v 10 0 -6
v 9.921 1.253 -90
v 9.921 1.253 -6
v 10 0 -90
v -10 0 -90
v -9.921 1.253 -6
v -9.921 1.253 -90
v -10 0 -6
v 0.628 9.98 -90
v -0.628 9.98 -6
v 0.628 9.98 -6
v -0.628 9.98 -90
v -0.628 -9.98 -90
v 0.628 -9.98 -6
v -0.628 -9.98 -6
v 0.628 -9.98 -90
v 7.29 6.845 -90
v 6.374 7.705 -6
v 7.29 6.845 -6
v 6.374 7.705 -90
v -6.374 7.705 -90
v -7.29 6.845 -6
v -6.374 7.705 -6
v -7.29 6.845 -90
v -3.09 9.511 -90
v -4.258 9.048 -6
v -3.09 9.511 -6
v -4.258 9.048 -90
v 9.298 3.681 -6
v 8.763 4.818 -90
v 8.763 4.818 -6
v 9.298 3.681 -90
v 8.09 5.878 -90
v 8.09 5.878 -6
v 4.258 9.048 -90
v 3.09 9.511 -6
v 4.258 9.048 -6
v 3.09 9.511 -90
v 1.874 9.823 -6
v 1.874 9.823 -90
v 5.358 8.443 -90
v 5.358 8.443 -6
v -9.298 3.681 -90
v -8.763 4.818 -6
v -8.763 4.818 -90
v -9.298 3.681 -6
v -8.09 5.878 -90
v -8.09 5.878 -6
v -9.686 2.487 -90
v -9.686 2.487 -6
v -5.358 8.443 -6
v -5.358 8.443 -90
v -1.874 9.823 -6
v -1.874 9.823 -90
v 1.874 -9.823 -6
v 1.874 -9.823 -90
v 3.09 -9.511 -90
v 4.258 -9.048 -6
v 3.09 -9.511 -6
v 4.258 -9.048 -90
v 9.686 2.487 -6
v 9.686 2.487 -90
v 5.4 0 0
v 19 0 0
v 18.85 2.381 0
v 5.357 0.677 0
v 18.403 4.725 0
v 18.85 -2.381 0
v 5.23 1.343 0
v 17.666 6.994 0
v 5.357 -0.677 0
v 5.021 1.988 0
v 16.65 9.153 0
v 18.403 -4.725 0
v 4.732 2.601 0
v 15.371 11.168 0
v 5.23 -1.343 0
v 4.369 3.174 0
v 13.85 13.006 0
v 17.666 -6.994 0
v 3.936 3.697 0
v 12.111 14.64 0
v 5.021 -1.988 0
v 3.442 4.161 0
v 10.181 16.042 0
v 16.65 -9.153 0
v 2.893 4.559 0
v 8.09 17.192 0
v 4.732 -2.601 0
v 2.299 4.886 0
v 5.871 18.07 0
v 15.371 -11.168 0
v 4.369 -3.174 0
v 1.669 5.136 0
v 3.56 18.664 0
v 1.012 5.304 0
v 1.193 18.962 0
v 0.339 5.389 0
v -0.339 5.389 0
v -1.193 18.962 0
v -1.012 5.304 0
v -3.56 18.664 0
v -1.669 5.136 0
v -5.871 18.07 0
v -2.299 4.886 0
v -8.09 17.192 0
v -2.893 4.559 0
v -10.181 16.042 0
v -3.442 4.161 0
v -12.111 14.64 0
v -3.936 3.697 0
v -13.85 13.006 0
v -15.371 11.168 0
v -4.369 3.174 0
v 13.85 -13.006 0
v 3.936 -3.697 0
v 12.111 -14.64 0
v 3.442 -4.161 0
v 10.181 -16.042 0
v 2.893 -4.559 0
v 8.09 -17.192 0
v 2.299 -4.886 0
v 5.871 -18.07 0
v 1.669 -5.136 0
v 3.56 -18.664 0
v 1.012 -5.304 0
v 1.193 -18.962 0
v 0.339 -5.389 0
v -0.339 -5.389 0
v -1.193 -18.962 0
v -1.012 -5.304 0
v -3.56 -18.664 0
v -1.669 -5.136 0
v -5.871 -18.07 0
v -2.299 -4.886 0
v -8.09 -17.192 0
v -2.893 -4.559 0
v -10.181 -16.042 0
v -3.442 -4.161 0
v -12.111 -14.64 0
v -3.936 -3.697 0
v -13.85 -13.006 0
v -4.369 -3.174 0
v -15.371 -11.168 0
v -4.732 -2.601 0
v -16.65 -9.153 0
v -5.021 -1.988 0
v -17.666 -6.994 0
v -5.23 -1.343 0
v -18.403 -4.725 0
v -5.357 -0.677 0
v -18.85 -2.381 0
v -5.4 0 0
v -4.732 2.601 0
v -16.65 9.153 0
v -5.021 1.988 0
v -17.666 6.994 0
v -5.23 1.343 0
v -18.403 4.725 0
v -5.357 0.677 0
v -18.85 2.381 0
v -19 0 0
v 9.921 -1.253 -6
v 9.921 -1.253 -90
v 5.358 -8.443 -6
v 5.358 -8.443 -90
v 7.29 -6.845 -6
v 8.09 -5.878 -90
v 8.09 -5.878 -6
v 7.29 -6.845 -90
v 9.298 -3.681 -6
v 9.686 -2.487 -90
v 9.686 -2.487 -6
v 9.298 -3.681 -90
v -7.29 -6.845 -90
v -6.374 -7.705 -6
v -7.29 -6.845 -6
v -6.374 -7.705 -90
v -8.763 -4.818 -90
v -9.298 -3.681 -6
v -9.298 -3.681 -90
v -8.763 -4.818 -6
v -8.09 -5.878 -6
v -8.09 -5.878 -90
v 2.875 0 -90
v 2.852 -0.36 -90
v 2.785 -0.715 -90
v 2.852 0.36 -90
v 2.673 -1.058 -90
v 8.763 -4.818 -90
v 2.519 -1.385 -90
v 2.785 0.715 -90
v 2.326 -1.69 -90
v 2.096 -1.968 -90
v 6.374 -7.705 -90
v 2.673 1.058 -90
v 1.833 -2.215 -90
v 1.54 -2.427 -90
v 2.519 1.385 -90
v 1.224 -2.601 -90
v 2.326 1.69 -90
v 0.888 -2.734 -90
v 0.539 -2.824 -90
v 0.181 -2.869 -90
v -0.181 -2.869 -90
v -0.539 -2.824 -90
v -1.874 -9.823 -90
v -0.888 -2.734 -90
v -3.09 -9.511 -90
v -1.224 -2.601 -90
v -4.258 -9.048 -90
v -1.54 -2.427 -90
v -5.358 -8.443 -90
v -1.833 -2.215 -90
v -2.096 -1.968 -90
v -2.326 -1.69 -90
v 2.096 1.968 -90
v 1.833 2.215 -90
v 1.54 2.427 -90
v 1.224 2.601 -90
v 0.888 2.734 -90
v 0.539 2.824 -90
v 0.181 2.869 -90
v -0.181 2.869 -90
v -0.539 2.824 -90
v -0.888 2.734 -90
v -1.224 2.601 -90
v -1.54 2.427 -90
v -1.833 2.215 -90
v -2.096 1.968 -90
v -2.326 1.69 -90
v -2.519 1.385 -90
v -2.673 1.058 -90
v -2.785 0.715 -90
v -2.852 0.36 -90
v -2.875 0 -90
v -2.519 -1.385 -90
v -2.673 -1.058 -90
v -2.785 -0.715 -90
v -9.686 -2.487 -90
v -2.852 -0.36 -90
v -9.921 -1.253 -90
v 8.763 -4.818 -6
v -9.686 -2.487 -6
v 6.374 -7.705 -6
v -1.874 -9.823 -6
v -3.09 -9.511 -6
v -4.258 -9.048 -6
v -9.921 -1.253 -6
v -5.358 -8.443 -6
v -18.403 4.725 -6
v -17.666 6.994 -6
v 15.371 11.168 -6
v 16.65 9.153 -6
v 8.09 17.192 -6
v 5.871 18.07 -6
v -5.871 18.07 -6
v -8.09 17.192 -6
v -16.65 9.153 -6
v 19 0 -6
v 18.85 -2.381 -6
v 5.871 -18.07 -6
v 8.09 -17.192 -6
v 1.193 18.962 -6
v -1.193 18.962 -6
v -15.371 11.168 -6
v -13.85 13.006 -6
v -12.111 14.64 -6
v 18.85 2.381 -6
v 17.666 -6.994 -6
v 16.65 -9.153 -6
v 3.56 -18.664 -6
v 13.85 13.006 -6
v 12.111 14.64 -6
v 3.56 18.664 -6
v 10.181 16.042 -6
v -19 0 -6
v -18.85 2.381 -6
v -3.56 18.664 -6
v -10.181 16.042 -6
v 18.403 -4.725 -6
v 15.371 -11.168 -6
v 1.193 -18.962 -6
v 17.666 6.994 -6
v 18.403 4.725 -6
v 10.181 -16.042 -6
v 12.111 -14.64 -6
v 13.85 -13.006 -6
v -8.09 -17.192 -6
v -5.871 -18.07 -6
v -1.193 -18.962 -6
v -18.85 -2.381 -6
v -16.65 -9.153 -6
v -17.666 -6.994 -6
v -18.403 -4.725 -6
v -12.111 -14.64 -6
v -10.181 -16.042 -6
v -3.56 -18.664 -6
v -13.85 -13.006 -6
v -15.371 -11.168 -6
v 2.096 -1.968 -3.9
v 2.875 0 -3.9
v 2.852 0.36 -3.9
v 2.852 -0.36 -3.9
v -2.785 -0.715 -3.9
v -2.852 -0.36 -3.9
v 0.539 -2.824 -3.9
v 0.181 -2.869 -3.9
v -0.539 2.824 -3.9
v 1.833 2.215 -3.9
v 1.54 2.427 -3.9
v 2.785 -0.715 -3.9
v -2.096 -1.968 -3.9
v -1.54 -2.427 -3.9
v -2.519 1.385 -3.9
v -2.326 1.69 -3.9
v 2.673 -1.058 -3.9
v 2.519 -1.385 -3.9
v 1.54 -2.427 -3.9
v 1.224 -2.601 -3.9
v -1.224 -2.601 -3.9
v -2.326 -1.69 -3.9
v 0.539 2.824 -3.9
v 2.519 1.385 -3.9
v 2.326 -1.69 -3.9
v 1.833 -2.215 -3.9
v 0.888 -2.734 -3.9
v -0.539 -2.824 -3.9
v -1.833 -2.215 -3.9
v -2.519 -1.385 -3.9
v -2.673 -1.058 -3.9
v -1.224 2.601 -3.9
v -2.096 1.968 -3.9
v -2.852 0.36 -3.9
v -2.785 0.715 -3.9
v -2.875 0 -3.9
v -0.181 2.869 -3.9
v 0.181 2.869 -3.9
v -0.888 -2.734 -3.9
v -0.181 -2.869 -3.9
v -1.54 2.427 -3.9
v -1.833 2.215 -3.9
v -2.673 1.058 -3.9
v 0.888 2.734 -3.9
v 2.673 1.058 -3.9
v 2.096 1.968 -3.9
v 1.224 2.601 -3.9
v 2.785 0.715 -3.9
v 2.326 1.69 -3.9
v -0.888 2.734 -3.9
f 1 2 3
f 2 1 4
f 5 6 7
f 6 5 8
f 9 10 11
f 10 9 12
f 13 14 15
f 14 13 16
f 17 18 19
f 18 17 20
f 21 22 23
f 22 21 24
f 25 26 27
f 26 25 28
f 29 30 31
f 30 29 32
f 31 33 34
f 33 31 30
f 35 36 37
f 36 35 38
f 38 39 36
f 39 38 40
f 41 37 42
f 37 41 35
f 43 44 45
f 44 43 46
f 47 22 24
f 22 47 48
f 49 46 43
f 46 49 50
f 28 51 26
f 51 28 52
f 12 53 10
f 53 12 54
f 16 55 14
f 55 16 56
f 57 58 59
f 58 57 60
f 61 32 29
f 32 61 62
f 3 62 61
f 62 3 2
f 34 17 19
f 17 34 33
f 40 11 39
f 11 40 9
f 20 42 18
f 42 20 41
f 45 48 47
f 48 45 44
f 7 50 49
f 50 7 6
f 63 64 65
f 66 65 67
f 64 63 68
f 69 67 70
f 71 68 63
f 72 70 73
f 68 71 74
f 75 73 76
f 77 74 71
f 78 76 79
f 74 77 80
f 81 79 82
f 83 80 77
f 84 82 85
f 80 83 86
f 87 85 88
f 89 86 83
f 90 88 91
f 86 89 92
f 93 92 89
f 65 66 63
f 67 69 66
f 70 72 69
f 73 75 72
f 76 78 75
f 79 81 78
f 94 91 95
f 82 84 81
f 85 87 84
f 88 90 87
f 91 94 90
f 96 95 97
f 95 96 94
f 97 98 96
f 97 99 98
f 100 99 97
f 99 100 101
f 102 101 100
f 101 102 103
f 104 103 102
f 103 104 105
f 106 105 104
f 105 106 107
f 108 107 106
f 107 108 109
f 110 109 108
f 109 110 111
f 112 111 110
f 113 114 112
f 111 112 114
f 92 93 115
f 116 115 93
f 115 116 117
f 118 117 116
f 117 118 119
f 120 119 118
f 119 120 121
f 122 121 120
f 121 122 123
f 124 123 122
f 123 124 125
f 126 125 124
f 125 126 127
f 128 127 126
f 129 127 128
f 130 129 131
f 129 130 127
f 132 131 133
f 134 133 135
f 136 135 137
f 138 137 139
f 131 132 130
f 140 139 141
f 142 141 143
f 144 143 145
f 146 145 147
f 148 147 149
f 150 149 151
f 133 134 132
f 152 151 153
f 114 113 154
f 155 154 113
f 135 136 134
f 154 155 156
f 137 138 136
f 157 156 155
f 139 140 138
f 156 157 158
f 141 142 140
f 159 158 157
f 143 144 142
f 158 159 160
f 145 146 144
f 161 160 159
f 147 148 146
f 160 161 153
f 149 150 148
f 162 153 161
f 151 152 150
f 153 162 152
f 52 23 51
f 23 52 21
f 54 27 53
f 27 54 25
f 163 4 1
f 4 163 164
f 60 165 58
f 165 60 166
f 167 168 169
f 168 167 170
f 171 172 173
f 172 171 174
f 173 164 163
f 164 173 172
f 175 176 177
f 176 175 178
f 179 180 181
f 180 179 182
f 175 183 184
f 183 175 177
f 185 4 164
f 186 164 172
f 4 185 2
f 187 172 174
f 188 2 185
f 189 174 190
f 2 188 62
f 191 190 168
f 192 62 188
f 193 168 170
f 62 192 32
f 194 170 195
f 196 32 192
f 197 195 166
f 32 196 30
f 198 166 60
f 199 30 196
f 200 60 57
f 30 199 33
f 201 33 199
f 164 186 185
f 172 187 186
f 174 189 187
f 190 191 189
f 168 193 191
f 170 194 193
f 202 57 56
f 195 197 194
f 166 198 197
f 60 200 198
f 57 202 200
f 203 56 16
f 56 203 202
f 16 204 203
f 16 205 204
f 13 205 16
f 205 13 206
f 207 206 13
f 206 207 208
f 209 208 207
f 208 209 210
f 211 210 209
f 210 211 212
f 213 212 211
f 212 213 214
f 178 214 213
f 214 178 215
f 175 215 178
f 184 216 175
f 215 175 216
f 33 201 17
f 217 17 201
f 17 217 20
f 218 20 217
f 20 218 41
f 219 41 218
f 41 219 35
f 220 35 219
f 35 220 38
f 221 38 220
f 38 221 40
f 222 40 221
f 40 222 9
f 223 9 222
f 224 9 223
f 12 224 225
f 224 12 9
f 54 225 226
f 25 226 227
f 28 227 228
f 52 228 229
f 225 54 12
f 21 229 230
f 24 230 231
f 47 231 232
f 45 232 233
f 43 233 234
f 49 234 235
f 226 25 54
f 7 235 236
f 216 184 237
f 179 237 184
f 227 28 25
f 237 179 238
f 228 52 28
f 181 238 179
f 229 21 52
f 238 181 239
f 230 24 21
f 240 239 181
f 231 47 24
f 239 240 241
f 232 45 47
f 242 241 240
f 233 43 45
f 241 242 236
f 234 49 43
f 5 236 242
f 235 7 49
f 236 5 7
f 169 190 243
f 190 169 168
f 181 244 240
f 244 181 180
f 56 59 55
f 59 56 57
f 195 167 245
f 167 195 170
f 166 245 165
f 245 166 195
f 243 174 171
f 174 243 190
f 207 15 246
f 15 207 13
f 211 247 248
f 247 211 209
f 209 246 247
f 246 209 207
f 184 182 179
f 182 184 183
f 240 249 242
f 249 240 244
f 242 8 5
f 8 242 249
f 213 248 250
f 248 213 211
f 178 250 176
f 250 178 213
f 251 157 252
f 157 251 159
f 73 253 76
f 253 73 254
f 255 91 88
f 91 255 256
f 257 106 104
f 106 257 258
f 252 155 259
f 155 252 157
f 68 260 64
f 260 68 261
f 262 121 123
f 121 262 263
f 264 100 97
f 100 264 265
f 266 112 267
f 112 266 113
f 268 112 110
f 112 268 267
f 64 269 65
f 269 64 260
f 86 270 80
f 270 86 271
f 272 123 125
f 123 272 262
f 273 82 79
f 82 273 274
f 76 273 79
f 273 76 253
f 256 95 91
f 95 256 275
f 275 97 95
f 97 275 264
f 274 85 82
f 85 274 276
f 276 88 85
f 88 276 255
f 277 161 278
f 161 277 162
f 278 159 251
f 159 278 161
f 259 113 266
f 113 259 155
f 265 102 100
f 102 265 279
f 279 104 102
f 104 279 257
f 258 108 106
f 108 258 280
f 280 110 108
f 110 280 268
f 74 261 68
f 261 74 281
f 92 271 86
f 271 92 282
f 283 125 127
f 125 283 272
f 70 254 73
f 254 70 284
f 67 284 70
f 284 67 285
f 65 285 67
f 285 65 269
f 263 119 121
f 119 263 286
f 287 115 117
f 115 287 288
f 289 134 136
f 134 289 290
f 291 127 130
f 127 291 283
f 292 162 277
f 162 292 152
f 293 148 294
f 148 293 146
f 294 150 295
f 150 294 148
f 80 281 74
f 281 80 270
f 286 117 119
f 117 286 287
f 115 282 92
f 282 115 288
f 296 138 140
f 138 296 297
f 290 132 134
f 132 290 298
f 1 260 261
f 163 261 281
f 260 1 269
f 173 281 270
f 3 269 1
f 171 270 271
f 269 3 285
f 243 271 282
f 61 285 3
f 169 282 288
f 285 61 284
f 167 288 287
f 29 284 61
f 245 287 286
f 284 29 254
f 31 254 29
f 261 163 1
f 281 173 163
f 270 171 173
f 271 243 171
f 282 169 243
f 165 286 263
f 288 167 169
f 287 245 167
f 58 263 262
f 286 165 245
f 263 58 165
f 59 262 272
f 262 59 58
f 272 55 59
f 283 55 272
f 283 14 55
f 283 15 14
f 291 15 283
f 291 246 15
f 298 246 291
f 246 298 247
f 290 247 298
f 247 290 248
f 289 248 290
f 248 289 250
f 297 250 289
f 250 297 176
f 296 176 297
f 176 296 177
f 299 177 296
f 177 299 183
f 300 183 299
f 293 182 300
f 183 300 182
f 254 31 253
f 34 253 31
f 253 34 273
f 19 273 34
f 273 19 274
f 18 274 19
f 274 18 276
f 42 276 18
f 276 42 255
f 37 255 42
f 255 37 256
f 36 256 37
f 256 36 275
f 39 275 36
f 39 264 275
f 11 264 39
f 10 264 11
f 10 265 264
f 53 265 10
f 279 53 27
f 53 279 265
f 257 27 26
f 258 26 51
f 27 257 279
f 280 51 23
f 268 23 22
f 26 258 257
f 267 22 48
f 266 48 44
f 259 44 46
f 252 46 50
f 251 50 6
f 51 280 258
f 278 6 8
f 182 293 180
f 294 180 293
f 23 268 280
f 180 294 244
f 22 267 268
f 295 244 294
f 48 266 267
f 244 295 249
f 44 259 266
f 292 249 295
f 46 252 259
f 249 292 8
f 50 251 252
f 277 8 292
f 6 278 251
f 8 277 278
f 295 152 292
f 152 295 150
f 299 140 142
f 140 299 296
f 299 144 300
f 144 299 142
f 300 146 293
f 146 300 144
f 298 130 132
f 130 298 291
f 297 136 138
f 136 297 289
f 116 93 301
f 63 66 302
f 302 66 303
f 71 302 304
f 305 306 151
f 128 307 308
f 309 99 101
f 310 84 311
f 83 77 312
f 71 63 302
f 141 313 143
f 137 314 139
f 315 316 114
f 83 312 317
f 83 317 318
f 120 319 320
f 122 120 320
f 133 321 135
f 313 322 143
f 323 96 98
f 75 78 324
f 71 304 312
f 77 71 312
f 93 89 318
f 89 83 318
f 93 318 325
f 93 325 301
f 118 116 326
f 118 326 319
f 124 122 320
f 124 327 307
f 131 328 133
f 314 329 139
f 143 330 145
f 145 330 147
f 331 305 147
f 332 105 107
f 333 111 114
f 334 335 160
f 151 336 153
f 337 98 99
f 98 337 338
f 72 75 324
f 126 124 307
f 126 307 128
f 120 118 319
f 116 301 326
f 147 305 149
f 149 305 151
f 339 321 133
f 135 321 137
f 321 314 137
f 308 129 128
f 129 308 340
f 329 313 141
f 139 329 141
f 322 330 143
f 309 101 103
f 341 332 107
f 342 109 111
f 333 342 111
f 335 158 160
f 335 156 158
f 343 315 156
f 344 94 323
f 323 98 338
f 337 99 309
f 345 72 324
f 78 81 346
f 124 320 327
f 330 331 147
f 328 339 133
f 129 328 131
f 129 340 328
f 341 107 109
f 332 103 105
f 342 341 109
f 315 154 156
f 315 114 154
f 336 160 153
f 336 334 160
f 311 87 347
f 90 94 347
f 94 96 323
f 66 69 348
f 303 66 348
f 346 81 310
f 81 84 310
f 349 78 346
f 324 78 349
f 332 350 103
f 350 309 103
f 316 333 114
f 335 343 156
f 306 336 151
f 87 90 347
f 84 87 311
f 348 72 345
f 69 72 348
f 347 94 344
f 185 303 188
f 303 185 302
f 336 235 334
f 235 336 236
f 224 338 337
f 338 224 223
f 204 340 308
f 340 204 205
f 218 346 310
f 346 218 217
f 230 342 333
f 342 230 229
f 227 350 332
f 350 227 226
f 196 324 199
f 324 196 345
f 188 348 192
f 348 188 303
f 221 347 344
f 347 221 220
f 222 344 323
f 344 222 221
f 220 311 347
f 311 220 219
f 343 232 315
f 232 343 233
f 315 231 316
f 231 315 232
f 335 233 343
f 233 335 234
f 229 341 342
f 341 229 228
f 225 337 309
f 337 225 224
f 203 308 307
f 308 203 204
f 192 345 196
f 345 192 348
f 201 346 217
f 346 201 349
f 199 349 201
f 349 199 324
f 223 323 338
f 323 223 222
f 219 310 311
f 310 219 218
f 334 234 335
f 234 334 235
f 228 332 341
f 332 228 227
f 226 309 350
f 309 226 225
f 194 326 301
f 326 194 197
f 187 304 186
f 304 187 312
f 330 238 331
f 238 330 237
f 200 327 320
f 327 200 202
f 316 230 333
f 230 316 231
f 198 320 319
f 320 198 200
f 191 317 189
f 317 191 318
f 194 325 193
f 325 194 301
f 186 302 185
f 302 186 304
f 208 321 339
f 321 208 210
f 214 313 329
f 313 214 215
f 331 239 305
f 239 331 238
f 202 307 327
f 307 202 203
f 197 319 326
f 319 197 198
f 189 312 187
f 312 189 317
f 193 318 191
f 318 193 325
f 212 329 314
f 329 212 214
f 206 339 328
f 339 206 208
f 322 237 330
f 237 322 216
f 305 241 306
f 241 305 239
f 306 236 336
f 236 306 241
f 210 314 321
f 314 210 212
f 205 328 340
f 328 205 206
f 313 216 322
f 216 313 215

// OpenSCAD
$fn = 50;


difference() {
	union() {
		translate(v = [0, 0, -90.0000000000]) {
			cylinder(h = 90, r = 10.0000000000);
		}
		translate(v = [0, 0, -6.0000000000]) {
			cylinder(h = 6, r = 19.0000000000);
		}
	}
	union() {
		translate(v = [0, 0, 0]) {
			rotate(a = [0, 0, 0]) {
				difference() {
					union() {
						#translate(v = [0, 0, -90.0000000000]) {
							cylinder(h = 90, r = 2.6000000000);
						}
						#translate(v = [0, 0, -3.9000000000]) {
							cylinder(h = 3.9000000000, r1 = 2.8750000000, r2 = 5.4000000000);
						}
						#translate(v = [0, 0, -90.0000000000]) {
							cylinder(h = 90, r = 2.8750000000);
						}
						#translate(v = [0, 0, -90.0000000000]) {
							cylinder(h = 90, r = 2.6000000000);
						}
					}
					union();
				}
			}
		}
	}
}
